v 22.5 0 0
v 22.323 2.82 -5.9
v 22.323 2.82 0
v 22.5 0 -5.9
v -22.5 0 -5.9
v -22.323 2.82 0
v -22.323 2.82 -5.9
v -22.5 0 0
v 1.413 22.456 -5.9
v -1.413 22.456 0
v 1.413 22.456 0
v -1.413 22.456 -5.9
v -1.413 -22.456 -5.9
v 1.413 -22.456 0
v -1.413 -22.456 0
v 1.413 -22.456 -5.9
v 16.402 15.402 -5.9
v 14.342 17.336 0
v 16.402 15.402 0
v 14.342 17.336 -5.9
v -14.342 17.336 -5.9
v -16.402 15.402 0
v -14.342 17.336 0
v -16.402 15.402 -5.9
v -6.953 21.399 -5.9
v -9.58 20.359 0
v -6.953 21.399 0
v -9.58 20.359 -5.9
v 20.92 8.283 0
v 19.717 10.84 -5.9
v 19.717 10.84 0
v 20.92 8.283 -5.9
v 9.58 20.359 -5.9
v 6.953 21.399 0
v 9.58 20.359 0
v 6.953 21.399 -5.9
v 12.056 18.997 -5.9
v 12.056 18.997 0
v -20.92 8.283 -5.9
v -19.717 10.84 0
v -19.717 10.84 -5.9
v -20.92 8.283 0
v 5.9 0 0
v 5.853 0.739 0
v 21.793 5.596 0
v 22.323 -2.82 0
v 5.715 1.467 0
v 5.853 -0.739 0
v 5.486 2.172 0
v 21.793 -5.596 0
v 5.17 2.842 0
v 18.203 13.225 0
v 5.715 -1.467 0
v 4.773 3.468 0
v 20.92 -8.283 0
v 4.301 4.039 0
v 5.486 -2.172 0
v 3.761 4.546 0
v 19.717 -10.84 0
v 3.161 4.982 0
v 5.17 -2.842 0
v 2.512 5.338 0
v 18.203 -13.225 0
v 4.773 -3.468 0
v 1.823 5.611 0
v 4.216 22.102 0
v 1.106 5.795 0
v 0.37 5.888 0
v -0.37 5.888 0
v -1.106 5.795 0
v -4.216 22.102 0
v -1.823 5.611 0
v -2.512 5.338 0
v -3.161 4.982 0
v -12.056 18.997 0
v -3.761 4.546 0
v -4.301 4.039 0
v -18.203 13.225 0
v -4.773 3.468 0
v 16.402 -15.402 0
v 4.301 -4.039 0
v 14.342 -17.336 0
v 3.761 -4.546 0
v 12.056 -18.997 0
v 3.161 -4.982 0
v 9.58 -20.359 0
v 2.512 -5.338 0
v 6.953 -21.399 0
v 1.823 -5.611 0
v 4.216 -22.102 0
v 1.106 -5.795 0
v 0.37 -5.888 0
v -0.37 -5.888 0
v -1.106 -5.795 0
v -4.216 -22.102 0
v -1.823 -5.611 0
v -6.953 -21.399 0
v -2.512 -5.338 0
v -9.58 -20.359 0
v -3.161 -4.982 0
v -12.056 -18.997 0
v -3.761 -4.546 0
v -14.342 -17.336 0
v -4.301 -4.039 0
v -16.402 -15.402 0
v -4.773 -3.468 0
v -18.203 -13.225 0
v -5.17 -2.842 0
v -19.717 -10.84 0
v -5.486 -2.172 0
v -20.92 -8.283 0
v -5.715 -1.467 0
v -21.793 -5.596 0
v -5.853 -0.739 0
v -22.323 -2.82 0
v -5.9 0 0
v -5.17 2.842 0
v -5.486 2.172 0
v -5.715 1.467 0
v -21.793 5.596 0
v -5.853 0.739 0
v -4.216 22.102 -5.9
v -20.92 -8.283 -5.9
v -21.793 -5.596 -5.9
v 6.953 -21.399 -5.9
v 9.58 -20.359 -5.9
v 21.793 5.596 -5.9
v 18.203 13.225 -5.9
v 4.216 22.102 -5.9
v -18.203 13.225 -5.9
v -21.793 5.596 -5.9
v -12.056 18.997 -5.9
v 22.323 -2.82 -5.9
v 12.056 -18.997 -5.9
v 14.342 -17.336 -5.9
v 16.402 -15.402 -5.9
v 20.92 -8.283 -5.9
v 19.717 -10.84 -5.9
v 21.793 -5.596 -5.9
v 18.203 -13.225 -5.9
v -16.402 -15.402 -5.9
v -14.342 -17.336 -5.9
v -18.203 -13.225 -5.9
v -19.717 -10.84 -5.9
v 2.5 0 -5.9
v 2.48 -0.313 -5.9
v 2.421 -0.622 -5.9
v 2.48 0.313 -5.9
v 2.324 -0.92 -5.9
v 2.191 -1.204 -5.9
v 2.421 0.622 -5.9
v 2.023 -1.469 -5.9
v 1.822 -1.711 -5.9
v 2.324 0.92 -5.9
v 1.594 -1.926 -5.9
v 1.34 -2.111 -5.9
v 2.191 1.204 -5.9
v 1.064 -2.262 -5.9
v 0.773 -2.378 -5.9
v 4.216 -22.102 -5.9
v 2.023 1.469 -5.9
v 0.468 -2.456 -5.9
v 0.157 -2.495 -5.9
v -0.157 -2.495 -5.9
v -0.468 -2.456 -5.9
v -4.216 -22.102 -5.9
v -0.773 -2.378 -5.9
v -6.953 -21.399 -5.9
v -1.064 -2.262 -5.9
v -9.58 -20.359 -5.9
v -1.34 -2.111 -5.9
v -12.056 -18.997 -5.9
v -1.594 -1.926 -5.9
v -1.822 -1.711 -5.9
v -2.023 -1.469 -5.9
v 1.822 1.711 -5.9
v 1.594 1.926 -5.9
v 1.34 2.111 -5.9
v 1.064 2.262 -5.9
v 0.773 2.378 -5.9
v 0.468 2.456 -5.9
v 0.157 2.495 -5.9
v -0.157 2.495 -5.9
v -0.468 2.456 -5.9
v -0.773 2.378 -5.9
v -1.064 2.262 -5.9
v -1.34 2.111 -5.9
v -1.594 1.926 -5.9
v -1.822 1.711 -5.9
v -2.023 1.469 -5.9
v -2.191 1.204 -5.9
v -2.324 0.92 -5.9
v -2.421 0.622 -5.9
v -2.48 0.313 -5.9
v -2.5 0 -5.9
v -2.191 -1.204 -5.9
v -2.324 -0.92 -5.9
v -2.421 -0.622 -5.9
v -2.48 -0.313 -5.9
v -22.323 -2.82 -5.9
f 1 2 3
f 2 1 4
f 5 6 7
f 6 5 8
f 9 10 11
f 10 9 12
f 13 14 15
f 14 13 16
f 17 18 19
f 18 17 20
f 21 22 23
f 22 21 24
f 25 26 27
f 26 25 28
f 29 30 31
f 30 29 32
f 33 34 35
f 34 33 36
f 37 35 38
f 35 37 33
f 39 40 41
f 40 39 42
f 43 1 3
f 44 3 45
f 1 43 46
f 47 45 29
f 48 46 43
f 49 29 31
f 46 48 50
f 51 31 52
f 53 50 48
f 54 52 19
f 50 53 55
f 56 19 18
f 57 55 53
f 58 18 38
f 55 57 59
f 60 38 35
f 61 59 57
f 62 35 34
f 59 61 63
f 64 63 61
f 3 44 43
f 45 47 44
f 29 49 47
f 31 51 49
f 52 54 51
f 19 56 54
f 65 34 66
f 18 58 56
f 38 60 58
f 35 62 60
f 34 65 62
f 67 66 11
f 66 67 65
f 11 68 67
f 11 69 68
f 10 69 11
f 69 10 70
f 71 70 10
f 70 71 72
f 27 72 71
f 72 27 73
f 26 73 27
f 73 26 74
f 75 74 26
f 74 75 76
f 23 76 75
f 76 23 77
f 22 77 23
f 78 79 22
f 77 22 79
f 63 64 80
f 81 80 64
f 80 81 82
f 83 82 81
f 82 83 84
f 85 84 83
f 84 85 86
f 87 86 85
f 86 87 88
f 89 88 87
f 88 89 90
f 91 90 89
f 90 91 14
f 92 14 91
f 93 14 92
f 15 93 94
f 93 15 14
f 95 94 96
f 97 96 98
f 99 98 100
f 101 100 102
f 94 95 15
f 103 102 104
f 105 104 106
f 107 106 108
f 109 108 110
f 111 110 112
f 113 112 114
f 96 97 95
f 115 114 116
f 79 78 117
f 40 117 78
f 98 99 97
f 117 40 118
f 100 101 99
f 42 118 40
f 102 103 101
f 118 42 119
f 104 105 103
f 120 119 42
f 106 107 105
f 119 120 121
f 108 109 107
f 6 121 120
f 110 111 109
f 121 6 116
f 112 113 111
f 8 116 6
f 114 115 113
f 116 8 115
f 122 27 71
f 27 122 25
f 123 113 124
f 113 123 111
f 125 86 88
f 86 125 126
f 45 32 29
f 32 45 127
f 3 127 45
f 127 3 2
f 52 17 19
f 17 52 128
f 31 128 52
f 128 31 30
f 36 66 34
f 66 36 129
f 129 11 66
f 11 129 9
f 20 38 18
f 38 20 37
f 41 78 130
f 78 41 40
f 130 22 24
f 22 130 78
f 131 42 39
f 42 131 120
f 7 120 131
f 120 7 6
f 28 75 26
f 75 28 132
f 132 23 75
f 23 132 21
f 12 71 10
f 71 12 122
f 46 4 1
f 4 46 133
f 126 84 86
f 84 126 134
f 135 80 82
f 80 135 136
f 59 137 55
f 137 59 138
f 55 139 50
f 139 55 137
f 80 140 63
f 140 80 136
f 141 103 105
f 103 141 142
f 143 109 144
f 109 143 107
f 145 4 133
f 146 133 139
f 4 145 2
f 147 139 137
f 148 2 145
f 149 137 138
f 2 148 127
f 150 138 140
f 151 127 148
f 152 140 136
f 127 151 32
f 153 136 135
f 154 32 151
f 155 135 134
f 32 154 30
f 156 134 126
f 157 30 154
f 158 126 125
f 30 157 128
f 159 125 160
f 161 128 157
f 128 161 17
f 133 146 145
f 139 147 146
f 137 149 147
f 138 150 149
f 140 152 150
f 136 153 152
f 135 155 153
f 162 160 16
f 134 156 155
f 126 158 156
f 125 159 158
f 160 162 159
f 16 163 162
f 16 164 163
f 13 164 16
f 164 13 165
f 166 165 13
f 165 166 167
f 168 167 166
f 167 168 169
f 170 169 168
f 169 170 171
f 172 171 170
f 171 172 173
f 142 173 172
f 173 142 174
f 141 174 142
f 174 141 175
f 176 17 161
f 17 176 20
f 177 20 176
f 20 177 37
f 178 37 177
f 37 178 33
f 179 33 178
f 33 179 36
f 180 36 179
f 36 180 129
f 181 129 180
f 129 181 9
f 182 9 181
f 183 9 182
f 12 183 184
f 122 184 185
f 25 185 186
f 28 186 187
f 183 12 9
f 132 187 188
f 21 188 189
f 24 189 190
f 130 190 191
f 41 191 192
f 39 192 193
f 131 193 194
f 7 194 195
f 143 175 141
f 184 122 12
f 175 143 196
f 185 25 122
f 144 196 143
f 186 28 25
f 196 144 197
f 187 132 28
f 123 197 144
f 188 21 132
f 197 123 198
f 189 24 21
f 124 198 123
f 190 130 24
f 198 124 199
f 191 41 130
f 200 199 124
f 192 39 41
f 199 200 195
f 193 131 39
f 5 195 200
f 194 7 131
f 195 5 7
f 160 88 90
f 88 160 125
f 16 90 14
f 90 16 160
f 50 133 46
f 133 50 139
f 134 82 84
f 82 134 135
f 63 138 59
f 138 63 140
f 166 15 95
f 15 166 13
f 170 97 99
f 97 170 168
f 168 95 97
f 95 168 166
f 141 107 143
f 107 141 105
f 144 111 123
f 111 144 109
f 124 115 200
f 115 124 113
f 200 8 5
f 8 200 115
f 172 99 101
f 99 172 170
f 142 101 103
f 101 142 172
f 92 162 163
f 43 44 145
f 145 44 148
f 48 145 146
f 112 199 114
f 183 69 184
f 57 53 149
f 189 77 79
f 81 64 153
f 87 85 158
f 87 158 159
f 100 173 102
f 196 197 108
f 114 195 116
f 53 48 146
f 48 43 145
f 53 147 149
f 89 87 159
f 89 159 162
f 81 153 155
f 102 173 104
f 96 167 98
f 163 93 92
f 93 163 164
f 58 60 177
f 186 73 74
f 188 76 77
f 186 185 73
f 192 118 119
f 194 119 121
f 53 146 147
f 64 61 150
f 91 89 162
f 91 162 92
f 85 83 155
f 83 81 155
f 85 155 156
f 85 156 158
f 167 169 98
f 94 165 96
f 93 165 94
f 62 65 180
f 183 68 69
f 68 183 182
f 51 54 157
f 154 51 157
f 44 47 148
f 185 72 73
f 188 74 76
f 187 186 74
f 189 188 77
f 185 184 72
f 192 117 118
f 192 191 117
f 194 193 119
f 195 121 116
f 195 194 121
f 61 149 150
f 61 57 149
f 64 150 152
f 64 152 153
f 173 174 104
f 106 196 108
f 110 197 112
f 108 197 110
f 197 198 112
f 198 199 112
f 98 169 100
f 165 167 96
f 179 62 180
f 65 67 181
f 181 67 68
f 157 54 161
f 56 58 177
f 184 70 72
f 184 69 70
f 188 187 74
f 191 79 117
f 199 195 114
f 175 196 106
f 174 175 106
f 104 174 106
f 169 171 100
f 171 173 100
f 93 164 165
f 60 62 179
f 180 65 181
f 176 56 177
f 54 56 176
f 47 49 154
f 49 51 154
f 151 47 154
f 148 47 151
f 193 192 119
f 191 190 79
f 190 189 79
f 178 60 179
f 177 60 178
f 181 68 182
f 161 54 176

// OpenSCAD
$fn = 50;


difference() {
	union() {
		translate(v = [0, 0, -5.9000000000]) {
			cylinder(h = 5.9000000000, r = 22.5000000000);
		}
		translate(v = [0, 0, -5.9000000000]) {
			cylinder(h = 5.9000000000, r = 2.8750000000);
		}
	}
	union() {
		translate(v = [0, 0, 0]) {
			rotate(a = [0, 0, 0]) {
				difference() {
					union() {
						#translate(v = [0, 0, -5.9000000000]) {
							cylinder(h = 5.9000000000, r = 2.2500000000);
						}
						#translate(v = [0, 0, -5.9000000000]) {
							cylinder(h = 5.9000000000, r1 = 2.5000000000, r2 = 5.9000000000);
						}
						#translate(v = [0, 0, -5.9000000000]) {
							cylinder(h = 5.9000000000, r = 2.5000000000);
						}
						#translate(v = [0, 0, -5.9000000000]) {
							cylinder(h = 5.9000000000, r = 2.2500000000);
						}
					}
					union();
				}
			}
		}
	}
}
